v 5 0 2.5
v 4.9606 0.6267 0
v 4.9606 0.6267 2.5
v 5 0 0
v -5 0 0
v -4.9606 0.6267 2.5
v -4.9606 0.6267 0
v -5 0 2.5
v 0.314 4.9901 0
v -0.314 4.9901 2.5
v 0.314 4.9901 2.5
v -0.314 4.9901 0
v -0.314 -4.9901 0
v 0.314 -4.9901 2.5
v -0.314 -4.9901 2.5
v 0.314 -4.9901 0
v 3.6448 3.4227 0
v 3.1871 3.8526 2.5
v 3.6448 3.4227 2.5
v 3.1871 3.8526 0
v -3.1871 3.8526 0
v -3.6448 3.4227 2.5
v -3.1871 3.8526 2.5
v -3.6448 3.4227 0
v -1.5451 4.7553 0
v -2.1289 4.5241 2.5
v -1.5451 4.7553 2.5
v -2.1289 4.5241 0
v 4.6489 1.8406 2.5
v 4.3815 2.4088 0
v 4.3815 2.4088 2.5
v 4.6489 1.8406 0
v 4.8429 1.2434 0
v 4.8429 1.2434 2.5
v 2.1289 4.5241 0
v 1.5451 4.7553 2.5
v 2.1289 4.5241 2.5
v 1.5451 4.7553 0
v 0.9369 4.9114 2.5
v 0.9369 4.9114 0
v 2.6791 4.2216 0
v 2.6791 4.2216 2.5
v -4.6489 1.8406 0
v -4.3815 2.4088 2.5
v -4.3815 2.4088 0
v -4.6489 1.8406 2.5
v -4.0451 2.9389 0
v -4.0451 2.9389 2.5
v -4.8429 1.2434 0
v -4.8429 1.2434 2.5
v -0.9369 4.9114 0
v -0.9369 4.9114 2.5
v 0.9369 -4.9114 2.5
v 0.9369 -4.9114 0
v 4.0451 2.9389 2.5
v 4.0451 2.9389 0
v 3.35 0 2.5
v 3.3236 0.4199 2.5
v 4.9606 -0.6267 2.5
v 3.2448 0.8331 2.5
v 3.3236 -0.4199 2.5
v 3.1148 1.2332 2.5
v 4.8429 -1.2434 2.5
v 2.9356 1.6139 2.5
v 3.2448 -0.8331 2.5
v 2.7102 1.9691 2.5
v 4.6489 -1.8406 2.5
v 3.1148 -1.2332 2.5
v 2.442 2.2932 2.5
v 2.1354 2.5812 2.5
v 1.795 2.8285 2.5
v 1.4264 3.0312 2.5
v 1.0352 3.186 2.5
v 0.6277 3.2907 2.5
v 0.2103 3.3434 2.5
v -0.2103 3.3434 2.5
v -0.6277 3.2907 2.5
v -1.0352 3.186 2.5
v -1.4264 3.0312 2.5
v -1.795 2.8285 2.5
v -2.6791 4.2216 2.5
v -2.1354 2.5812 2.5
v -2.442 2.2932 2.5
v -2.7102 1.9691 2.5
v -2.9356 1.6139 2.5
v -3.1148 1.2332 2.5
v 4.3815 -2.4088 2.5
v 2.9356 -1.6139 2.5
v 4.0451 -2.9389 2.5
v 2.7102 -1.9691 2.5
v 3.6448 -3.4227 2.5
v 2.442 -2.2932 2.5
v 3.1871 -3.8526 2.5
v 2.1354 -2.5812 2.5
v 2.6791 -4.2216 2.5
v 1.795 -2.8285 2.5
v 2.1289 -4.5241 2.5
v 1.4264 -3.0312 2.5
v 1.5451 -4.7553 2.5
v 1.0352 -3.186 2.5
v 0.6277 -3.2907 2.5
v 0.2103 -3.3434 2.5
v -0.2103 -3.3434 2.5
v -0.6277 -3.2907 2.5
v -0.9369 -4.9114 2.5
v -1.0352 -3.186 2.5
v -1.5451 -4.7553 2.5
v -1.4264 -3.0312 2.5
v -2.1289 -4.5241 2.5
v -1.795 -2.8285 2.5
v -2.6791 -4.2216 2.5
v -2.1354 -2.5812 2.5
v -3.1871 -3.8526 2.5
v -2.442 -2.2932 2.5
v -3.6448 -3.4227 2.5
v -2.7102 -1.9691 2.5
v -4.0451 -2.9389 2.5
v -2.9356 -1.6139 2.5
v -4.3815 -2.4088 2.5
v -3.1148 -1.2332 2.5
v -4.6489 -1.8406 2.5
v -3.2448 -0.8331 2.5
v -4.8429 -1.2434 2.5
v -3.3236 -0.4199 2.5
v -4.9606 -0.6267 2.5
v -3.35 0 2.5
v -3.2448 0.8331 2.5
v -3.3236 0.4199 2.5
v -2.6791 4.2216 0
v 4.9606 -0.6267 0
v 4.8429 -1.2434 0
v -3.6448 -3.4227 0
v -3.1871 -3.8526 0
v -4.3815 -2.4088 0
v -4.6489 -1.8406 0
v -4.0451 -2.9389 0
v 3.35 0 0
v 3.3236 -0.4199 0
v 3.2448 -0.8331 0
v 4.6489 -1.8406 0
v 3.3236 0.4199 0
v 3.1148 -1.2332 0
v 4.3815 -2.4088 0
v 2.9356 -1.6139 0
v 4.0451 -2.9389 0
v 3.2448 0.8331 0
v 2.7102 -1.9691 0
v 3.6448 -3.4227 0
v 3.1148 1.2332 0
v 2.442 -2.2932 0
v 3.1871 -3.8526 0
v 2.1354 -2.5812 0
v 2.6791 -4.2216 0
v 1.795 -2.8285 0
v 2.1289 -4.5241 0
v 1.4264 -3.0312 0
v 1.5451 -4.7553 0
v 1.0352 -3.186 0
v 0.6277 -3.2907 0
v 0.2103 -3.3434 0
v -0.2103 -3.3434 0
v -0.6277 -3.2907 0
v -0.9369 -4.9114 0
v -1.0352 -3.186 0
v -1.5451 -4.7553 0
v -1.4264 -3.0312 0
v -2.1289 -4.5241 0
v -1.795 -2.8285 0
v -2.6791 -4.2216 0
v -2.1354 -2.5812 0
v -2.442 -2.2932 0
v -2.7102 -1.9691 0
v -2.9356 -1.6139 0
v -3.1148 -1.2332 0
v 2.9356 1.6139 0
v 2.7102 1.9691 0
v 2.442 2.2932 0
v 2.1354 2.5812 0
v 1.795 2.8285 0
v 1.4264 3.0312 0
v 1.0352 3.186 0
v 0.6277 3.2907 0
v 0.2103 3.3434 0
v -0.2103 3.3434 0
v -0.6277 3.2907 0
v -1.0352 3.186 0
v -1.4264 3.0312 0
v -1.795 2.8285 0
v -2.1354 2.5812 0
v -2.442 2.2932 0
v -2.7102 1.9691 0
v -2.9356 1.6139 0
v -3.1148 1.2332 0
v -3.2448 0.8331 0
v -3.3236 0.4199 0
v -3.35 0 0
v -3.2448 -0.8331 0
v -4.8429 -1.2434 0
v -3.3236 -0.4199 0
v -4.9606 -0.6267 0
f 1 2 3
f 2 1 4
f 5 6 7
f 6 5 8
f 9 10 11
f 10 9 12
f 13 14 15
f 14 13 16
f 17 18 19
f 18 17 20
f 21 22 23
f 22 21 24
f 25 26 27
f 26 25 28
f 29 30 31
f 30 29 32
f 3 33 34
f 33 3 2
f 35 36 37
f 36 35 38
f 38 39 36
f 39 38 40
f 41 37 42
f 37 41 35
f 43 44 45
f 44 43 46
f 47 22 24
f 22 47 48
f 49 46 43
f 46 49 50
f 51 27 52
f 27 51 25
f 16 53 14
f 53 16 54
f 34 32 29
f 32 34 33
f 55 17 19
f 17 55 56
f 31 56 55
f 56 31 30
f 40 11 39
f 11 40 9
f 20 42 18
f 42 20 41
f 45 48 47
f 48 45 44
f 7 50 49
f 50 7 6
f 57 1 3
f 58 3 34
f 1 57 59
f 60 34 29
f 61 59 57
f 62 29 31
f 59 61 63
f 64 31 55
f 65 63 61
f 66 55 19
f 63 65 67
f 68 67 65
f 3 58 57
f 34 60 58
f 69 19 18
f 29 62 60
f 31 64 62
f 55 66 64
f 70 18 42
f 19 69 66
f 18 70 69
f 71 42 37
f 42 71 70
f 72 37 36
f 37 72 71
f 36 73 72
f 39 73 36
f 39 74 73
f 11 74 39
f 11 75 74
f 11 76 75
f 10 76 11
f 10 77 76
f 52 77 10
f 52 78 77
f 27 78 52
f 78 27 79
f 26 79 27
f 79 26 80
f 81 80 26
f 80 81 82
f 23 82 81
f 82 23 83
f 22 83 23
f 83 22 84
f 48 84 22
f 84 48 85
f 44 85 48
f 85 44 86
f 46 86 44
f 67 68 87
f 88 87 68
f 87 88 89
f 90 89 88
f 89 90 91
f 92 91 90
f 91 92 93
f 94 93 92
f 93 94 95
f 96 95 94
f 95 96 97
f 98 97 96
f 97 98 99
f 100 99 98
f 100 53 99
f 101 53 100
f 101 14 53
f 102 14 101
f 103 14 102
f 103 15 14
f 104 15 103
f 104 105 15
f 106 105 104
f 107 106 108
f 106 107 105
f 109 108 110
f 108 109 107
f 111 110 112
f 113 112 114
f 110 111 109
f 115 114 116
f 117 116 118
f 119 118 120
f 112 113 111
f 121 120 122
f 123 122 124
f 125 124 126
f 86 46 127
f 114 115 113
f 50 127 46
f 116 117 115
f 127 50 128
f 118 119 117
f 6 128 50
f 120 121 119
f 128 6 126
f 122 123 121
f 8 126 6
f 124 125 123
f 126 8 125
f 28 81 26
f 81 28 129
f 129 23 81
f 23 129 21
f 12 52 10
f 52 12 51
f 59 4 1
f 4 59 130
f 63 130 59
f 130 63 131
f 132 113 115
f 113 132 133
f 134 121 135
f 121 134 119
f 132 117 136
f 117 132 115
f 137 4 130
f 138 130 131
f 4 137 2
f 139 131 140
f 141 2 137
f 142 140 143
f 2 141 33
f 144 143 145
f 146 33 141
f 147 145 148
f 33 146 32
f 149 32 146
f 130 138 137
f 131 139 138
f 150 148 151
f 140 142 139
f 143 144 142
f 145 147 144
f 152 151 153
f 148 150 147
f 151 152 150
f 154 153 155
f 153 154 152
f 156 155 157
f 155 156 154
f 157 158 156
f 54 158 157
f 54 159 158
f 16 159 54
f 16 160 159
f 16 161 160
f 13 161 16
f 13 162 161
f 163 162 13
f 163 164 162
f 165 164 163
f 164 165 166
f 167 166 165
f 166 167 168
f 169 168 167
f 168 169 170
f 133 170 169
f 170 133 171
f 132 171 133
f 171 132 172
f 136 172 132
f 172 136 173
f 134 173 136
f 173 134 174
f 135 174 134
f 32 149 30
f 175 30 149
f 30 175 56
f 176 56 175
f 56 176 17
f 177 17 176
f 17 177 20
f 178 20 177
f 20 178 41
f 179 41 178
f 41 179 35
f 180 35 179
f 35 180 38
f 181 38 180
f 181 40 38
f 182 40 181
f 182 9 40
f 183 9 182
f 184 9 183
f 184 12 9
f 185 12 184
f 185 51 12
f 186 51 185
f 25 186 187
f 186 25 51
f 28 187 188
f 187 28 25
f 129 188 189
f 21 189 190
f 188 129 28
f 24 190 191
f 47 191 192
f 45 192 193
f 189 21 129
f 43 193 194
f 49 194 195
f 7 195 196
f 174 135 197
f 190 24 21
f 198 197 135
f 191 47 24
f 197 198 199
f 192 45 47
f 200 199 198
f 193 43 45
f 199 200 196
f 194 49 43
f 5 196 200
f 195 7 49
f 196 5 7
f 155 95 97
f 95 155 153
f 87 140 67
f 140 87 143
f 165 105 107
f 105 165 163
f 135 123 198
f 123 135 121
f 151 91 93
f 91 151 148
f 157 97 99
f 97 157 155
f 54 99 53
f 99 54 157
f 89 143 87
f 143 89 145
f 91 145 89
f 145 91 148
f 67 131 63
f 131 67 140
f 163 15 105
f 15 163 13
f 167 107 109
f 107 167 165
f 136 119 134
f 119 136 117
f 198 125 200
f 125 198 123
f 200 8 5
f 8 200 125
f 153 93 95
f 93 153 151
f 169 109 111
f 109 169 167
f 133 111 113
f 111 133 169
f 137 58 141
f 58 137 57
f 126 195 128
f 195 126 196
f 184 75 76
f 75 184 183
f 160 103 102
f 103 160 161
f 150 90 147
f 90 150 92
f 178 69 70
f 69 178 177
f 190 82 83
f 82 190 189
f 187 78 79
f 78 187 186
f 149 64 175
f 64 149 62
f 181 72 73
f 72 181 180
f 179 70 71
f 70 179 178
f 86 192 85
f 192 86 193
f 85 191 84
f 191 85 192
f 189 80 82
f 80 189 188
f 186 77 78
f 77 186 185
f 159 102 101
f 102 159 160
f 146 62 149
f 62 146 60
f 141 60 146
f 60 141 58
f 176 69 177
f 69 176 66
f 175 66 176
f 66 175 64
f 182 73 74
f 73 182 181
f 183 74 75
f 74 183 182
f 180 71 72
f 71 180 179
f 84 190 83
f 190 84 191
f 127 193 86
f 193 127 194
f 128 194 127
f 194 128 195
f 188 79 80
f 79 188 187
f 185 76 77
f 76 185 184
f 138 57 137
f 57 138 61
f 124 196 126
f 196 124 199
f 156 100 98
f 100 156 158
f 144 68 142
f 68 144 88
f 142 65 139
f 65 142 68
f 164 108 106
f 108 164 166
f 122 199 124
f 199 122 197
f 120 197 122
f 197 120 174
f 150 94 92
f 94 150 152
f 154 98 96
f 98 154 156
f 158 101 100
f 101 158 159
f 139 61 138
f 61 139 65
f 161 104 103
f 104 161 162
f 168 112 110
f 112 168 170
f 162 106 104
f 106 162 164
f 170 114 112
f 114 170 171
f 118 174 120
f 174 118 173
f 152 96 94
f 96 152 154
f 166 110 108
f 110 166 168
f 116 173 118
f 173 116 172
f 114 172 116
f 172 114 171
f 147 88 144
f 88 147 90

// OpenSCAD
eps = 0.001;

difference() {
    cylinder(d=10, h=2.5, $fn=50);
    translate([0, 0, -eps]) {
        cylinder(d=6.7, h=2.5 + 2*eps, $fn=50);
    }
}
